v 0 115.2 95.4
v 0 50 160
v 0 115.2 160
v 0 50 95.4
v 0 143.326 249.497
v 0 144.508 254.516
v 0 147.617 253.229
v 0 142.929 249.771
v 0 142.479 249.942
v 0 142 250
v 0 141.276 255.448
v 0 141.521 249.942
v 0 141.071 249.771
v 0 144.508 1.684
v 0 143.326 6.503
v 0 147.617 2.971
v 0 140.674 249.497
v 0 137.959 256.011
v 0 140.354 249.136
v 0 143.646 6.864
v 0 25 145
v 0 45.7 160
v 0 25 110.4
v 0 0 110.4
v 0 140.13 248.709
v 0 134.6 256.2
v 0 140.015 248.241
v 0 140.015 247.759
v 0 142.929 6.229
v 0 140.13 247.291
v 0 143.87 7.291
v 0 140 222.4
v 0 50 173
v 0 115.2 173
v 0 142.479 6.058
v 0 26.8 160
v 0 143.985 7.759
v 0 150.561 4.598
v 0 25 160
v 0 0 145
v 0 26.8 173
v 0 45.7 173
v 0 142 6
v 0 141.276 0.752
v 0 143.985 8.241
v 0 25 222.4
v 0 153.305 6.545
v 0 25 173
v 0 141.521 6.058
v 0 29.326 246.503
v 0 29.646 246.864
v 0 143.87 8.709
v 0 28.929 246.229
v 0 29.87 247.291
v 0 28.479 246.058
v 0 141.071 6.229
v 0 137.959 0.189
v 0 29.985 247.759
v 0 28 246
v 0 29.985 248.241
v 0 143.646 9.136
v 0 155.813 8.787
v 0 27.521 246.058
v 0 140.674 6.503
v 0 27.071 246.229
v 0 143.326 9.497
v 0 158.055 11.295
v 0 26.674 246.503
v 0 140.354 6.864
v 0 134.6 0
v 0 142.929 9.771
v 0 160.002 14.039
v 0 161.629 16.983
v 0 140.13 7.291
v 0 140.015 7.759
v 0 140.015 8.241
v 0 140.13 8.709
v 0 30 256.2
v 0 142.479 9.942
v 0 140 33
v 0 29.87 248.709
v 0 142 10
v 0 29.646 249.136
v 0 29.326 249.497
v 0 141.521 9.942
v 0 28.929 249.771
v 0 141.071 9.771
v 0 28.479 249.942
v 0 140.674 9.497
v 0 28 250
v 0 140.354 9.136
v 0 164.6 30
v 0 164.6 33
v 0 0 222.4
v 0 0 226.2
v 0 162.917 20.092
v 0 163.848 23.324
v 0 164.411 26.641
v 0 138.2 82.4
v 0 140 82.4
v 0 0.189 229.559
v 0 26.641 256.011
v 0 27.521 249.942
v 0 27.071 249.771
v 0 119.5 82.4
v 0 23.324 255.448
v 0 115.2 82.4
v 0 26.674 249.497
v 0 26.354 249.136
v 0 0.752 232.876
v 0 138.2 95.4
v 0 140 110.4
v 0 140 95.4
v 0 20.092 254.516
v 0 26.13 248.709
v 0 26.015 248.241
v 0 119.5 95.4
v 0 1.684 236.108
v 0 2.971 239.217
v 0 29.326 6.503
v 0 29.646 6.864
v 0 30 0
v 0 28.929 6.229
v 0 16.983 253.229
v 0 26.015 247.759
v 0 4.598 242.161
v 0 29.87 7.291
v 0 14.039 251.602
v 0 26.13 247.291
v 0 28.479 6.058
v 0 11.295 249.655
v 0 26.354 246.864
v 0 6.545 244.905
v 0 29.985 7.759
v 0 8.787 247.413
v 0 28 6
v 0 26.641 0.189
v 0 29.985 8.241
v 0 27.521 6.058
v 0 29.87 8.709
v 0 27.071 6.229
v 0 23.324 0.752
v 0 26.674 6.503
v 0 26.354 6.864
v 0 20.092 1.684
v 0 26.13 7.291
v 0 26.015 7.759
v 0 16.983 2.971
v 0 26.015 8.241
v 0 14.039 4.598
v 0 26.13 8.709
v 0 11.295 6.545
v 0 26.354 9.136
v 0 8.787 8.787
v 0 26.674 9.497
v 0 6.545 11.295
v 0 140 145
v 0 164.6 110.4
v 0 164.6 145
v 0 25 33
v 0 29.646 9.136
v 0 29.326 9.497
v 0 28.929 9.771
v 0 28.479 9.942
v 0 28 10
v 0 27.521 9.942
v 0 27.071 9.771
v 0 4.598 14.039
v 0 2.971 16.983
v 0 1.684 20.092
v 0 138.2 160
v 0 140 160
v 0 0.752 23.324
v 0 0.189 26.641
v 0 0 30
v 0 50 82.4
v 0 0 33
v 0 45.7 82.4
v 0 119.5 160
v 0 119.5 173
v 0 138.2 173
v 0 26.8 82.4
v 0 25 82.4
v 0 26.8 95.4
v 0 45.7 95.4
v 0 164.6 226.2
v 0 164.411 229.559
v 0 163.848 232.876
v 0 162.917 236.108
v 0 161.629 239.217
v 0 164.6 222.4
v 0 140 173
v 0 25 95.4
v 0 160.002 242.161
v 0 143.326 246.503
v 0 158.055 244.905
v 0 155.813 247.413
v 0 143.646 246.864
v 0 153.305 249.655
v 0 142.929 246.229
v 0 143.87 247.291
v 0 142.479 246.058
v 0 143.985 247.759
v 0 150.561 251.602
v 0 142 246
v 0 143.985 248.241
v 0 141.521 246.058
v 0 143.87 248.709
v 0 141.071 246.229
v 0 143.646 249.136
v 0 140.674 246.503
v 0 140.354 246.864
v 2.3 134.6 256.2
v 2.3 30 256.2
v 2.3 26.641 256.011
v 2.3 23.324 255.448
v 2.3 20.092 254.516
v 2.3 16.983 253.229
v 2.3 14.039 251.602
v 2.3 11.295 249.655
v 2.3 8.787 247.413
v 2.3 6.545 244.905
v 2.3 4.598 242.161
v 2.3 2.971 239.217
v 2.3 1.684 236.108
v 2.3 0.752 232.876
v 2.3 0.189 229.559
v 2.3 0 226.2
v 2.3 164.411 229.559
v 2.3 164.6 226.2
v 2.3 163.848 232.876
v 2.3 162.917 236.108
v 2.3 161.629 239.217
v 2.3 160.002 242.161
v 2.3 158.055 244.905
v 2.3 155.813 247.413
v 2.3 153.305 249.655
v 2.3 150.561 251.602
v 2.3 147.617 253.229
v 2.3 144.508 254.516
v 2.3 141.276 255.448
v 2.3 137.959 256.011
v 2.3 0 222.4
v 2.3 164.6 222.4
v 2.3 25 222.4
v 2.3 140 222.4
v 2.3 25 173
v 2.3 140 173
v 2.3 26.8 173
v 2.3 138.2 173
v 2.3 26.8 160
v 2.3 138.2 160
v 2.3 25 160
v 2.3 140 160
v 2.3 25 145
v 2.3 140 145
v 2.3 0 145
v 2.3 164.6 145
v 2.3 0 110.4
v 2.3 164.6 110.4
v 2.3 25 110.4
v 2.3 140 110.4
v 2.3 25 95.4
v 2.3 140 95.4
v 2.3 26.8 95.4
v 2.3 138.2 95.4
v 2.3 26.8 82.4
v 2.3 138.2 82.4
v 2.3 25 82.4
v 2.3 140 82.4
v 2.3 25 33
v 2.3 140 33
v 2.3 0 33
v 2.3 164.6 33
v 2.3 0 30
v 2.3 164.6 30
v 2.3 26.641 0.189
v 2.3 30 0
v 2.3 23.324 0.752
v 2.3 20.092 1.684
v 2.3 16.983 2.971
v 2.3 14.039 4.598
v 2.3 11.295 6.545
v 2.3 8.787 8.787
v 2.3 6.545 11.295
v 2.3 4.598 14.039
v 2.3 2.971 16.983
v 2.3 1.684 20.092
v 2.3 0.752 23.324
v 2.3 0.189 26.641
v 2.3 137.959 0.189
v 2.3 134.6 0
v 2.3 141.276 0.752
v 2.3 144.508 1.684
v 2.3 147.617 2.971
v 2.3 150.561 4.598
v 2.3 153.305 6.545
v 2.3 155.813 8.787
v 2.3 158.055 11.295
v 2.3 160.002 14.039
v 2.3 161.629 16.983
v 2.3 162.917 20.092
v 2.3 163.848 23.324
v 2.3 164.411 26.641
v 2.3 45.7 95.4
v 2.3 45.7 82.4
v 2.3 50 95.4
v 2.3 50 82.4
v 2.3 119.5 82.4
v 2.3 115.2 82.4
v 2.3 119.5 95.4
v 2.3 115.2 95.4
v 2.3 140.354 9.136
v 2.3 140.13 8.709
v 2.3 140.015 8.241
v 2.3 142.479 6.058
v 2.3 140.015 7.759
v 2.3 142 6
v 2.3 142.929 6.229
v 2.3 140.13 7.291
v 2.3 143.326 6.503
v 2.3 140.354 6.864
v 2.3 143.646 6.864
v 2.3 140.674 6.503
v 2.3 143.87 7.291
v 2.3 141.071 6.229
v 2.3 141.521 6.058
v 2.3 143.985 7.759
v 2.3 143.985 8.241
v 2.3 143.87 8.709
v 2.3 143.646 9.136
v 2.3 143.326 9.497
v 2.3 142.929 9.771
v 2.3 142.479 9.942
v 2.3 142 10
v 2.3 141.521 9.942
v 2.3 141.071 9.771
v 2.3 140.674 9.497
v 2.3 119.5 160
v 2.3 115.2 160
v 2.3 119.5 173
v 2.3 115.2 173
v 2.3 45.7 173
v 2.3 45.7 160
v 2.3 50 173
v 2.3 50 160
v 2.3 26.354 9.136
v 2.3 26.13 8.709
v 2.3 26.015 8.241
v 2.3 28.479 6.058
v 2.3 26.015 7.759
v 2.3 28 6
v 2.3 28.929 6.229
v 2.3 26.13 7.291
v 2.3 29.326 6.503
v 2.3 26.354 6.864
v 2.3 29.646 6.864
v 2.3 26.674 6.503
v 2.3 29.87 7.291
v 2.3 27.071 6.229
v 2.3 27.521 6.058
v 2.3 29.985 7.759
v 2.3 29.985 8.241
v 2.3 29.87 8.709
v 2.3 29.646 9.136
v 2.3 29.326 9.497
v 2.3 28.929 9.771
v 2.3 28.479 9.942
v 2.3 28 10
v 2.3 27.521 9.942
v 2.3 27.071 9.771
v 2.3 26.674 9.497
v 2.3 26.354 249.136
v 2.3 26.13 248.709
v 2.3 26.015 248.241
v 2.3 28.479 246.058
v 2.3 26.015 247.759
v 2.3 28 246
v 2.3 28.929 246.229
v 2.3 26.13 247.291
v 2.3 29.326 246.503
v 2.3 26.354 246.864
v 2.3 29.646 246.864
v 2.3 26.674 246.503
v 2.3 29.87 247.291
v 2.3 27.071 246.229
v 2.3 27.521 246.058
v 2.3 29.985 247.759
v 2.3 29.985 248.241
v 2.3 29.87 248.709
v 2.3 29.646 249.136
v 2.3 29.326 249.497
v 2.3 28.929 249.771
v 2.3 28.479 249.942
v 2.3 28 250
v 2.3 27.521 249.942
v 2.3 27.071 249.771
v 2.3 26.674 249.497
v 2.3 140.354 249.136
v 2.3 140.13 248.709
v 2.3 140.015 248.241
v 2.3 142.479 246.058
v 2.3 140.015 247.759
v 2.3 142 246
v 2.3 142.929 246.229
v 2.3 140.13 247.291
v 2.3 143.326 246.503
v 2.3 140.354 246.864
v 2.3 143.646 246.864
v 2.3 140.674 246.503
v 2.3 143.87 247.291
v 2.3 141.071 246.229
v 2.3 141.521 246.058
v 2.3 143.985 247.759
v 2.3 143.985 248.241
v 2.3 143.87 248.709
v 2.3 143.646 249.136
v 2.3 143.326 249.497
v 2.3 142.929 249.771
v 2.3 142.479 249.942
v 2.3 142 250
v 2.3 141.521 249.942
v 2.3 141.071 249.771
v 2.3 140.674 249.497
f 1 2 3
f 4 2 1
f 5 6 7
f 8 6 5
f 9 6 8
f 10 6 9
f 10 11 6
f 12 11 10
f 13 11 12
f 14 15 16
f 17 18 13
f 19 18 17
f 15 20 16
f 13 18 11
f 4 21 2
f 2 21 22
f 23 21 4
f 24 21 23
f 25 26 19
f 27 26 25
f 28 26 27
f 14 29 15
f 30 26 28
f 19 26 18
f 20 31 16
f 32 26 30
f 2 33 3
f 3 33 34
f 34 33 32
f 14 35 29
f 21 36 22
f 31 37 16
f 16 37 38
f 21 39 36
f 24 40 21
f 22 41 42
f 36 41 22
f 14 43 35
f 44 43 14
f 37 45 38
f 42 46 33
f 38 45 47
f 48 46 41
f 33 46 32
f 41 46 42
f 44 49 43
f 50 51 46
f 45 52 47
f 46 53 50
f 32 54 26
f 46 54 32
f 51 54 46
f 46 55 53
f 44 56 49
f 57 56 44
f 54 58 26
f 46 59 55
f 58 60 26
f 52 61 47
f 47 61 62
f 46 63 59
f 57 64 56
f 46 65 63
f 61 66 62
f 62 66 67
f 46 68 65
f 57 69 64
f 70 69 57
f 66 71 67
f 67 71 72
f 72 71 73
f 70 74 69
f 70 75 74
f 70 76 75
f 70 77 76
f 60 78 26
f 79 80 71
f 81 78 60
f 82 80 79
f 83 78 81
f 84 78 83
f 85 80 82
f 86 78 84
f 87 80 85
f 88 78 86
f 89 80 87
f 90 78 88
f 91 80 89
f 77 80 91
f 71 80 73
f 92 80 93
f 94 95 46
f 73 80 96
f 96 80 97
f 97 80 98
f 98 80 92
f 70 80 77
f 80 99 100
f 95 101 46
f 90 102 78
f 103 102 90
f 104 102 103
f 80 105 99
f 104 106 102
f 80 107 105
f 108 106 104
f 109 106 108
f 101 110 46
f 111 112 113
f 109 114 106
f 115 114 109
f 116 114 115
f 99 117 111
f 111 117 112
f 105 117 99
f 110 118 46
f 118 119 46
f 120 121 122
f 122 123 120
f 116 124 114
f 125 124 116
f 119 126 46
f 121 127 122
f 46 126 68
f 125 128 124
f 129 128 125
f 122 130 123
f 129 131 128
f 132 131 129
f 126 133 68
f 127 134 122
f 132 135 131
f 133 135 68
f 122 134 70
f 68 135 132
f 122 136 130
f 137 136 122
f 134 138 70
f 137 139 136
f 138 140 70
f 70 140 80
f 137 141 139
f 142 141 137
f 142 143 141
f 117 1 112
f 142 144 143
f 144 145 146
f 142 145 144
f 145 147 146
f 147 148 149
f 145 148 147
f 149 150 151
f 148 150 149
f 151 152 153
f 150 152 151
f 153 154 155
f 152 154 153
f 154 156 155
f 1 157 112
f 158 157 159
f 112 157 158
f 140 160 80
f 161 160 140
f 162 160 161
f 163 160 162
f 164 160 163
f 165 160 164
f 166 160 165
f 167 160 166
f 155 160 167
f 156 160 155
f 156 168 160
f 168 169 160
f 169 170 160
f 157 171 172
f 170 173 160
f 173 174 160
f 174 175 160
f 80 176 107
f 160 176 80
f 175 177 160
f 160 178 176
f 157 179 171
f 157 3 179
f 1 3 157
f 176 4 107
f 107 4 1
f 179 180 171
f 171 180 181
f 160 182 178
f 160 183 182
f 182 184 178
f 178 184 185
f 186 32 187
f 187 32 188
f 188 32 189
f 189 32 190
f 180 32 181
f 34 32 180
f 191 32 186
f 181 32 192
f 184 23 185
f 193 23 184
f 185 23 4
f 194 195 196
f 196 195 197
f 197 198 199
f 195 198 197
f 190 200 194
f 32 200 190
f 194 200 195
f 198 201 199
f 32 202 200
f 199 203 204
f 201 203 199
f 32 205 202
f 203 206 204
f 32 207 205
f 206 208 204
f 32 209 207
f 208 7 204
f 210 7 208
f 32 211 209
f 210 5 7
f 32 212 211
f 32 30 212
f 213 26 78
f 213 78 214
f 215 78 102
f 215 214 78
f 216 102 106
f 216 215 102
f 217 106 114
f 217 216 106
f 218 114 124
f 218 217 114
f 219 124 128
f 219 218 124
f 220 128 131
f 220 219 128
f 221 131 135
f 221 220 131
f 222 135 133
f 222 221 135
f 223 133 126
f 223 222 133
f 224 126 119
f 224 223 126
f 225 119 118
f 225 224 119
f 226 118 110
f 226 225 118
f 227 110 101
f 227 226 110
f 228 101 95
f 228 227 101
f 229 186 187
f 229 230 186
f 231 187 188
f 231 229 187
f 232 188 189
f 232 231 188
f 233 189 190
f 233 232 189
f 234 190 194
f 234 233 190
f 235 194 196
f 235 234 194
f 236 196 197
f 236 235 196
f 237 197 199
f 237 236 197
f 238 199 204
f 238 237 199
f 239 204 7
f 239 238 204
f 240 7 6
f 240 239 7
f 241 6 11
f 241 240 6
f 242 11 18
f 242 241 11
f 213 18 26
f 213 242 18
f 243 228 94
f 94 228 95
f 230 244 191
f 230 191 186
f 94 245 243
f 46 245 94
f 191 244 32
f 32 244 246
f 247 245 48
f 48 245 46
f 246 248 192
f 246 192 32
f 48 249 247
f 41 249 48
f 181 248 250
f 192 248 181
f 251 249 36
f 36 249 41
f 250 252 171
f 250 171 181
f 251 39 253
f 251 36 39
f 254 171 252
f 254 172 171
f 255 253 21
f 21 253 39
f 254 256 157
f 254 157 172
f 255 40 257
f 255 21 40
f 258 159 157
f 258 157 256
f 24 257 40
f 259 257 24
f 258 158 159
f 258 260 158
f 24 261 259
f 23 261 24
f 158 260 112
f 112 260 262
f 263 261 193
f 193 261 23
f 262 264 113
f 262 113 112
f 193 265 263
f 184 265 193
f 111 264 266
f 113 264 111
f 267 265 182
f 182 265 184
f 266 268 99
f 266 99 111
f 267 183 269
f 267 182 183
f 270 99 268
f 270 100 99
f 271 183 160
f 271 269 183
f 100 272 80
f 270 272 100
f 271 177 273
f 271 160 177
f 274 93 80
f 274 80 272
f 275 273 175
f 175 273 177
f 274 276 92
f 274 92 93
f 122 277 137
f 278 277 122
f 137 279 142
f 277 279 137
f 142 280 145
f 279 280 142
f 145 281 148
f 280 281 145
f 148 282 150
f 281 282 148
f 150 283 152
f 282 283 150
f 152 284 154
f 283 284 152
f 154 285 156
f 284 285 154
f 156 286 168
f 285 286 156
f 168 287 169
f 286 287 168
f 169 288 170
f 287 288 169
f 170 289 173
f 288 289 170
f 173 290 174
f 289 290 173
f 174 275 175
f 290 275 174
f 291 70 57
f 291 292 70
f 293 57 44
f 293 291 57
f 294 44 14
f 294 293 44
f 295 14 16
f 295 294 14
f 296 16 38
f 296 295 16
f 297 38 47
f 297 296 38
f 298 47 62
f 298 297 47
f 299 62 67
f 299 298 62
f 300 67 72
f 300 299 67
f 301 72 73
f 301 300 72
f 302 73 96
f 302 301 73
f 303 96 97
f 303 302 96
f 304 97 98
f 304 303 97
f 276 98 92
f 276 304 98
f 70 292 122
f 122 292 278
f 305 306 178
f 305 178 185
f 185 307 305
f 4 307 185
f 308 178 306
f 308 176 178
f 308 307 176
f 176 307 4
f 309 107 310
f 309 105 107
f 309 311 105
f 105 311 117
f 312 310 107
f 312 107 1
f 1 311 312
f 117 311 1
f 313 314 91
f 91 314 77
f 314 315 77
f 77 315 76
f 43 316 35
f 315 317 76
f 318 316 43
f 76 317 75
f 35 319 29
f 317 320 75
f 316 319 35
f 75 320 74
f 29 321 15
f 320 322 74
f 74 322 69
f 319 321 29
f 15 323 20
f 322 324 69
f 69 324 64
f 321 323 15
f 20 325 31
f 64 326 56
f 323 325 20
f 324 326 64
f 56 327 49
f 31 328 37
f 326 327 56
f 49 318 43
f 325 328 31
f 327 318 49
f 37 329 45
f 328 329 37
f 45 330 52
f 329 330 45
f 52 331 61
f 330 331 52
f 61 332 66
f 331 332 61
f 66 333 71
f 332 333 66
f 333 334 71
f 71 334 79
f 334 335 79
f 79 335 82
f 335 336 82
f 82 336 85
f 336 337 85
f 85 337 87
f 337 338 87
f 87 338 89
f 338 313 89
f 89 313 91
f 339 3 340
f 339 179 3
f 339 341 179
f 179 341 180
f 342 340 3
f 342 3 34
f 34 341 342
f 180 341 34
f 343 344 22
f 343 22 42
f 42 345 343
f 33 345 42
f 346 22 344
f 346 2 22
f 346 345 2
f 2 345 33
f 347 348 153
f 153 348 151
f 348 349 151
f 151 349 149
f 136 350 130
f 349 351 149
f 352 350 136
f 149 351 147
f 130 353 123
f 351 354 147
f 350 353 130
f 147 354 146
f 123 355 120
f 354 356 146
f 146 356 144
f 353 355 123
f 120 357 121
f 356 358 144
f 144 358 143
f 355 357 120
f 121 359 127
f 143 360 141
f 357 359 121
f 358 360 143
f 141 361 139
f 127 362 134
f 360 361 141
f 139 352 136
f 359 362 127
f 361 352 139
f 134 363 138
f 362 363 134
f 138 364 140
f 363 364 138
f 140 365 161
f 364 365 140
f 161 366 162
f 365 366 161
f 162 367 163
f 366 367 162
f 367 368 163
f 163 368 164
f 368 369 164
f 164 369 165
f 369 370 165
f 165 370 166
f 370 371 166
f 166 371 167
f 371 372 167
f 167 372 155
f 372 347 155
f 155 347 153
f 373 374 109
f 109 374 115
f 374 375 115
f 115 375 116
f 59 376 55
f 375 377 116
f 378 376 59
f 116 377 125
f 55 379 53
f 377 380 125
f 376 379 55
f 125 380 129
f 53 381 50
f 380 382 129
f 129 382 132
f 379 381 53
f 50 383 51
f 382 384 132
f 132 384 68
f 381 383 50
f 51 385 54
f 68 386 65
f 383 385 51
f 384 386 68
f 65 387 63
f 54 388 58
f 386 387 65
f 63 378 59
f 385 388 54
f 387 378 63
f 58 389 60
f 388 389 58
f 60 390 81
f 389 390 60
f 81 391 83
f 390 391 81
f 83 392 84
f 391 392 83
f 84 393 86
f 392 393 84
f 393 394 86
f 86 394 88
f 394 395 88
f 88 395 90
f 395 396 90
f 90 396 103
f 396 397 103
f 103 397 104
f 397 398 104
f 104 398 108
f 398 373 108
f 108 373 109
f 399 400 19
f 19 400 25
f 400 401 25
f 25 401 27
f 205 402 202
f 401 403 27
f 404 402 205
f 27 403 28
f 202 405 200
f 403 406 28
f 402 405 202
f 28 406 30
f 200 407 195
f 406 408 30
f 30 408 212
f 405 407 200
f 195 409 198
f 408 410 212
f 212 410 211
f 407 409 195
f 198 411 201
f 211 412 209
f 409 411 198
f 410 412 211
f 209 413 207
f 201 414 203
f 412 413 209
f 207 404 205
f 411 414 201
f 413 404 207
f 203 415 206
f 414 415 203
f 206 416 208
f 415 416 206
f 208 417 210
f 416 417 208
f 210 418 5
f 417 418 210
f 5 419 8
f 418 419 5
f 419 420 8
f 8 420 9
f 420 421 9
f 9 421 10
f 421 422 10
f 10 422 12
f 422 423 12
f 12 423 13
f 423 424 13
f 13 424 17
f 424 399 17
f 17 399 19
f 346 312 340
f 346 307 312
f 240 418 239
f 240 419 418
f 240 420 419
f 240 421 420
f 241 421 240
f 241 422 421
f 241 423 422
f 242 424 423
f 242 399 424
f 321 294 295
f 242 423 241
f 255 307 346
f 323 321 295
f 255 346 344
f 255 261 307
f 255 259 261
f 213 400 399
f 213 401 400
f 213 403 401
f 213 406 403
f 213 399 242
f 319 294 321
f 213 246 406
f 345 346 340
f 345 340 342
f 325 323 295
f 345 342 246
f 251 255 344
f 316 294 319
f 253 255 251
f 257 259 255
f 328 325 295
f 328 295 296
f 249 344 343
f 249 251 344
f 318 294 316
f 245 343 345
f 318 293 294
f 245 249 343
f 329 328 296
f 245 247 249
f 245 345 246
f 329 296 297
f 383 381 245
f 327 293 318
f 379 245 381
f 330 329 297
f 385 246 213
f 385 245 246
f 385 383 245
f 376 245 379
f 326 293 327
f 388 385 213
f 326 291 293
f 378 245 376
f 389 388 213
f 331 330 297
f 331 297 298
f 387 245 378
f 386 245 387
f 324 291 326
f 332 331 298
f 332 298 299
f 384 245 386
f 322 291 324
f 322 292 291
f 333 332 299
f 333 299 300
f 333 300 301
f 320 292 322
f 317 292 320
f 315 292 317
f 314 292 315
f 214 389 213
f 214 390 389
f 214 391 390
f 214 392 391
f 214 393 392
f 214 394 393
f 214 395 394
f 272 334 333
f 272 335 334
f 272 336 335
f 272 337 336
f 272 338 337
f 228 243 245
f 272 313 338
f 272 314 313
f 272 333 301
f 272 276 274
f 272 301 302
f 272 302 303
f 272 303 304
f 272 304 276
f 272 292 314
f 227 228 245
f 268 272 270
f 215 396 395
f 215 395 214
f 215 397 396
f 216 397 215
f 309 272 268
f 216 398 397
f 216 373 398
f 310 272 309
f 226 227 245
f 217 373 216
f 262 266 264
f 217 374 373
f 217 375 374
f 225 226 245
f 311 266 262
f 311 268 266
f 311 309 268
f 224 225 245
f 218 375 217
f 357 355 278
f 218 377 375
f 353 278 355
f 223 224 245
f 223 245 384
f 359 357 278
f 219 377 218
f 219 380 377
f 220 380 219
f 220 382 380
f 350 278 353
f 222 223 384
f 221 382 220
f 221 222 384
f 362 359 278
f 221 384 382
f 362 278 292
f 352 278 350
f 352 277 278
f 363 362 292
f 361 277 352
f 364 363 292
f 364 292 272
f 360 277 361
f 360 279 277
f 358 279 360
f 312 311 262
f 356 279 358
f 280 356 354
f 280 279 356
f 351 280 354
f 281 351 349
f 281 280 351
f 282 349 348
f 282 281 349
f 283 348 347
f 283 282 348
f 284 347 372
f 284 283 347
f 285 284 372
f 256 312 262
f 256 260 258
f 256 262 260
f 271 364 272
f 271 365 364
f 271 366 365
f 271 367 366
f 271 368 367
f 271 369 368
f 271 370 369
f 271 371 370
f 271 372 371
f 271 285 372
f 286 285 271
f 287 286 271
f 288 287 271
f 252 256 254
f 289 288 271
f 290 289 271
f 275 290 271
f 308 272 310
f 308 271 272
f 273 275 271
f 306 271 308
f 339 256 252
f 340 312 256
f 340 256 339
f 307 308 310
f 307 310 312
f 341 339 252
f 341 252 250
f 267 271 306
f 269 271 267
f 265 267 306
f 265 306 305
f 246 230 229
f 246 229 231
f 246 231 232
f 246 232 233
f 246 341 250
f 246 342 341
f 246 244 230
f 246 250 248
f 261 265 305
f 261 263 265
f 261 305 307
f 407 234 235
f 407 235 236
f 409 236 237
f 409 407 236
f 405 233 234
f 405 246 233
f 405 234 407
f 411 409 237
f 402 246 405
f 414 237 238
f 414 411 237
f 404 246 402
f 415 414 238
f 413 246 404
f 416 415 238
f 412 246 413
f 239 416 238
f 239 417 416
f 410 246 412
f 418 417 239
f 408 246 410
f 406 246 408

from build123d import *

# Parameters (mm, degrees)
CYLINDER002_R           = 2
CYLINDER002_DEPTH       = 10
CYLINDER002_PITCH_ANGLE = 90
CYLINDER003_R           = 2
CYLINDER003_DEPTH       = 10
CYLINDER003_PITCH_ANGLE = 90
CYLINDER001_R           = 2
CYLINDER001_DEPTH       = 10
CYLINDER001_PITCH_ANGLE = 90
CYLINDER_R              = 2
CYLINDER_DEPTH          = 10
CYLINDER_PITCH_ANGLE    = 90
BOX012_W                = 10
BOX012_H                = 4.3
BOX012_DEPTH            = 13
BOX011_W                = 10
BOX011_H                = 1.8
BOX011_DEPTH            = 13
BOX007_W                = 10
BOX007_H                = 1.8
BOX007_DEPTH            = 13
BOX009_W                = 10
BOX009_H                = 4.3
BOX009_DEPTH            = 13
BOX008_W                = 10
BOX008_H                = 4.3
BOX008_DEPTH            = 13
BOX010_W                = 10
BOX010_H                = 1.8
BOX010_DEPTH            = 13
BOX006_W                = 10
BOX006_H                = 4.3
BOX006_DEPTH            = 13
BOX005_W                = 10
BOX005_H                = 1.8
BOX005_DEPTH            = 13
BOX002_W                = 10
BOX002_H                = 25
BOX002_DEPTH            = 77.4
BOX004_W                = 10
BOX004_H                = 25
BOX004_DEPTH            = 77.4
BOX001_W                = 10
BOX001_H                = 25
BOX001_DEPTH            = 77.4
BOX003_W                = 10
BOX003_H                = 25
BOX003_DEPTH            = 77.4
BOX_W                   = 2.3
BOX_H                   = 164.6
BOX_DEPTH               = 256.2
FILLET_R                = 30
FILLET001_R             = 30
FILLET002_R             = 30
FILLET003_R             = 30


with BuildPart() as cilindro002:
    # Cylinder002 → Cylinder002 (new body)
    with BuildSketch(Plane.XY):
        Circle(CYLINDER002_R)
    extrude(amount=CYLINDER002_DEPTH)


with BuildPart() as cilindro002_1:
    # Cylinder002 pitch: moved
    add(cilindro002.part.rotate(Axis((0, 0, 0), (0, 1, 0)), CYLINDER002_PITCH_ANGLE))


with BuildPart() as cilindro002_2:
    # Cylinder002 placement: moved
    add(cilindro002_1.part.moved(Location((-2, 28, 248))))


with BuildPart() as cilindro003:
    # Cylinder003 → Cylinder003 (new body)
    with BuildSketch(Plane.XY):
        Circle(CYLINDER003_R)
    extrude(amount=CYLINDER003_DEPTH)


with BuildPart() as cilindro003_1:
    # Cylinder003 pitch: moved
    add(cilindro003.part.rotate(Axis((0, 0, 0), (0, 1, 0)), CYLINDER003_PITCH_ANGLE))


with BuildPart() as cilindro003_2:
    # Cylinder003 placement: moved
    add(cilindro003_1.part.moved(Location((-2, 142, 248))))


with BuildPart() as cilindro001:
    # Cylinder001 → Cylinder001 (new body)
    with BuildSketch(Plane.XY):
        Circle(CYLINDER001_R)
    extrude(amount=CYLINDER001_DEPTH)


with BuildPart() as cilindro001_1:
    # Cylinder001 pitch: moved
    add(cilindro001.part.rotate(Axis((0, 0, 0), (0, 1, 0)), CYLINDER001_PITCH_ANGLE))


with BuildPart() as cilindro001_2:
    # Cylinder001 placement: moved
    add(cilindro001_1.part.moved(Location((-1, 142, 8))))


with BuildPart() as cilindro:
    # Cylinder → Cylinder (new body)
    with BuildSketch(Plane.XY):
        Circle(CYLINDER_R)
    extrude(amount=CYLINDER_DEPTH)


with BuildPart() as cilindro_1:
    # Cylinder pitch: moved
    add(cilindro.part.rotate(Axis((0, 0, 0), (0, 1, 0)), CYLINDER_PITCH_ANGLE))


with BuildPart() as cilindro_2:
    # Cylinder placement: moved
    add(cilindro_1.part.moved(Location((-2, 28, 8))))


with BuildPart() as cubo012:
    # Box012 → Box012 (new body)
    with BuildSketch(Plane(origin=(-2, 115.2, 160), x_dir=(1, 0, 0), z_dir=(0, 0, 1))):
        with Locations((5, 2.15)):
            Rectangle(BOX012_W, BOX012_H)
    extrude(amount=BOX012_DEPTH)


with BuildPart() as cubo011:
    # Box011 → Box011 (new body)
    with BuildSketch(Plane(origin=(-2, 138.2, 160), x_dir=(1, 0, 0), z_dir=(0, 0, 1))):
        with Locations((5, 0.9)):
            Rectangle(BOX011_W, BOX011_H)
    extrude(amount=BOX011_DEPTH)


with BuildPart() as cubo007:
    # Box007 → Box007 (new body)
    with BuildSketch(Plane(origin=(-2, 138.2, 82.4), x_dir=(1, 0, 0), z_dir=(0, 0, 1))):
        with Locations((5, 0.9)):
            Rectangle(BOX007_W, BOX007_H)
    extrude(amount=BOX007_DEPTH)


with BuildPart() as cubo009:
    # Box009 → Box009 (new body)
    with BuildSketch(Plane(origin=(-2, 115.2, 82.4), x_dir=(1, 0, 0), z_dir=(0, 0, 1))):
        with Locations((5, 2.15)):
            Rectangle(BOX009_W, BOX009_H)
    extrude(amount=BOX009_DEPTH)


with BuildPart() as cubo008:
    # Box008 → Box008 (new body)
    with BuildSketch(Plane(origin=(0, 45.7, 160), x_dir=(1, 0, 0), z_dir=(0, 0, 1))):
        with Locations((5, 2.15)):
            Rectangle(BOX008_W, BOX008_H)
    extrude(amount=BOX008_DEPTH)


with BuildPart() as cubo010:
    # Box010 → Box010 (new body)
    with BuildSketch(Plane(origin=(-2, 25, 160), x_dir=(1, 0, 0), z_dir=(0, 0, 1))):
        with Locations((5, 0.9)):
            Rectangle(BOX010_W, BOX010_H)
    extrude(amount=BOX010_DEPTH)


with BuildPart() as cubo006:
    # Box006 → Box006 (new body)
    with BuildSketch(Plane(origin=(0, 45.7, 82.4), x_dir=(1, 0, 0), z_dir=(0, 0, 1))):
        with Locations((5, 2.15)):
            Rectangle(BOX006_W, BOX006_H)
    extrude(amount=BOX006_DEPTH)


with BuildPart() as cubo005:
    # Box005 → Box005 (new body)
    with BuildSketch(Plane(origin=(-2, 25, 82.4), x_dir=(1, 0, 0), z_dir=(0, 0, 1))):
        with Locations((5, 0.9)):
            Rectangle(BOX005_W, BOX005_H)
    extrude(amount=BOX005_DEPTH)


with BuildPart() as cubo002:
    # Box002 → Box002 (new body)
    with BuildSketch(Plane.XY.offset(145)):
        with Locations((5, 12.5)):
            Rectangle(BOX002_W, BOX002_H)
    extrude(amount=BOX002_DEPTH)


with BuildPart() as cubo004:
    # Box004 → Box004 (new body)
    with BuildSketch(Plane(origin=(0, 140, 145), x_dir=(1, 0, 0), z_dir=(0, 0, 1))):
        with Locations((5, 12.5)):
            Rectangle(BOX004_W, BOX004_H)
    extrude(amount=BOX004_DEPTH)


with BuildPart() as cubo001:
    # Box001 → Box001 (new body)
    with BuildSketch(Plane.XY.offset(33)):
        with Locations((5, 12.5)):
            Rectangle(BOX001_W, BOX001_H)
    extrude(amount=BOX001_DEPTH)


with BuildPart() as cubo003:
    # Box003 → Box003 (new body)
    with BuildSketch(Plane(origin=(0, 140, 33), x_dir=(1, 0, 0), z_dir=(0, 0, 1))):
        with Locations((5, 12.5)):
            Rectangle(BOX003_W, BOX003_H)
    extrude(amount=BOX003_DEPTH)


with BuildPart() as cut015:
    # Box → Box (new body)
    with BuildSketch(Plane.XY):
        with Locations((1.15, 82.3)):
            Rectangle(BOX_W, BOX_H)
    extrude(amount=BOX_DEPTH)

    # Cut: cut Cubo003
    add(cubo003.part, mode=Mode.SUBTRACT)

    # Cut001: cut Cubo001
    add(cubo001.part, mode=Mode.SUBTRACT)

    # Cut002: cut Cubo004
    add(cubo004.part, mode=Mode.SUBTRACT)

    # Cut003: cut Cubo002
    add(cubo002.part, mode=Mode.SUBTRACT)

    # Fillet
    fillet_edges = [cut015.edges().sort_by_distance(p)[0] for p in [
        (1.15, 0, 0),
    ]]
    fillet(fillet_edges, radius=FILLET_R)

    # Fillet001
    fillet001_edges = [cut015.edges().sort_by_distance(p)[0] for p in [
        (1.15, 164.6, 0),
    ]]
    fillet(fillet001_edges, radius=FILLET001_R)

    # Fillet002
    fillet002_edges = [cut015.edges().sort_by_distance(p)[0] for p in [
        (1.15, 164.6, 256.2),
    ]]
    fillet(fillet002_edges, radius=FILLET002_R)

    # Fillet003
    fillet003_edges = [cut015.edges().sort_by_distance(p)[0] for p in [
        (1.15, 0, 256.2),
    ]]
    fillet(fillet003_edges, radius=FILLET003_R)

    # Cut004: cut Cubo005
    add(cubo005.part, mode=Mode.SUBTRACT)

    # Cut005: cut Cubo006
    add(cubo006.part, mode=Mode.SUBTRACT)

    # Cut006: cut Cubo010
    add(cubo010.part, mode=Mode.SUBTRACT)

    # Cut007: cut Cubo008
    add(cubo008.part, mode=Mode.SUBTRACT)

    # Cut008: cut Cubo009
    add(cubo009.part, mode=Mode.SUBTRACT)

    # Cut009: cut Cubo007
    add(cubo007.part, mode=Mode.SUBTRACT)

    # Cut010: cut Cubo011
    add(cubo011.part, mode=Mode.SUBTRACT)

    # Cut011: cut Cubo012
    add(cubo012.part, mode=Mode.SUBTRACT)

    # Cut012: cut Cilindro
    add(cilindro_2.part, mode=Mode.SUBTRACT)

    # Cut013: cut Cilindro001
    add(cilindro001_2.part, mode=Mode.SUBTRACT)

    # Cut014: cut Cilindro003
    add(cilindro003_2.part, mode=Mode.SUBTRACT)

    # Cut015: cut Cilindro002
    add(cilindro002_2.part, mode=Mode.SUBTRACT)


solid = cut015.part
